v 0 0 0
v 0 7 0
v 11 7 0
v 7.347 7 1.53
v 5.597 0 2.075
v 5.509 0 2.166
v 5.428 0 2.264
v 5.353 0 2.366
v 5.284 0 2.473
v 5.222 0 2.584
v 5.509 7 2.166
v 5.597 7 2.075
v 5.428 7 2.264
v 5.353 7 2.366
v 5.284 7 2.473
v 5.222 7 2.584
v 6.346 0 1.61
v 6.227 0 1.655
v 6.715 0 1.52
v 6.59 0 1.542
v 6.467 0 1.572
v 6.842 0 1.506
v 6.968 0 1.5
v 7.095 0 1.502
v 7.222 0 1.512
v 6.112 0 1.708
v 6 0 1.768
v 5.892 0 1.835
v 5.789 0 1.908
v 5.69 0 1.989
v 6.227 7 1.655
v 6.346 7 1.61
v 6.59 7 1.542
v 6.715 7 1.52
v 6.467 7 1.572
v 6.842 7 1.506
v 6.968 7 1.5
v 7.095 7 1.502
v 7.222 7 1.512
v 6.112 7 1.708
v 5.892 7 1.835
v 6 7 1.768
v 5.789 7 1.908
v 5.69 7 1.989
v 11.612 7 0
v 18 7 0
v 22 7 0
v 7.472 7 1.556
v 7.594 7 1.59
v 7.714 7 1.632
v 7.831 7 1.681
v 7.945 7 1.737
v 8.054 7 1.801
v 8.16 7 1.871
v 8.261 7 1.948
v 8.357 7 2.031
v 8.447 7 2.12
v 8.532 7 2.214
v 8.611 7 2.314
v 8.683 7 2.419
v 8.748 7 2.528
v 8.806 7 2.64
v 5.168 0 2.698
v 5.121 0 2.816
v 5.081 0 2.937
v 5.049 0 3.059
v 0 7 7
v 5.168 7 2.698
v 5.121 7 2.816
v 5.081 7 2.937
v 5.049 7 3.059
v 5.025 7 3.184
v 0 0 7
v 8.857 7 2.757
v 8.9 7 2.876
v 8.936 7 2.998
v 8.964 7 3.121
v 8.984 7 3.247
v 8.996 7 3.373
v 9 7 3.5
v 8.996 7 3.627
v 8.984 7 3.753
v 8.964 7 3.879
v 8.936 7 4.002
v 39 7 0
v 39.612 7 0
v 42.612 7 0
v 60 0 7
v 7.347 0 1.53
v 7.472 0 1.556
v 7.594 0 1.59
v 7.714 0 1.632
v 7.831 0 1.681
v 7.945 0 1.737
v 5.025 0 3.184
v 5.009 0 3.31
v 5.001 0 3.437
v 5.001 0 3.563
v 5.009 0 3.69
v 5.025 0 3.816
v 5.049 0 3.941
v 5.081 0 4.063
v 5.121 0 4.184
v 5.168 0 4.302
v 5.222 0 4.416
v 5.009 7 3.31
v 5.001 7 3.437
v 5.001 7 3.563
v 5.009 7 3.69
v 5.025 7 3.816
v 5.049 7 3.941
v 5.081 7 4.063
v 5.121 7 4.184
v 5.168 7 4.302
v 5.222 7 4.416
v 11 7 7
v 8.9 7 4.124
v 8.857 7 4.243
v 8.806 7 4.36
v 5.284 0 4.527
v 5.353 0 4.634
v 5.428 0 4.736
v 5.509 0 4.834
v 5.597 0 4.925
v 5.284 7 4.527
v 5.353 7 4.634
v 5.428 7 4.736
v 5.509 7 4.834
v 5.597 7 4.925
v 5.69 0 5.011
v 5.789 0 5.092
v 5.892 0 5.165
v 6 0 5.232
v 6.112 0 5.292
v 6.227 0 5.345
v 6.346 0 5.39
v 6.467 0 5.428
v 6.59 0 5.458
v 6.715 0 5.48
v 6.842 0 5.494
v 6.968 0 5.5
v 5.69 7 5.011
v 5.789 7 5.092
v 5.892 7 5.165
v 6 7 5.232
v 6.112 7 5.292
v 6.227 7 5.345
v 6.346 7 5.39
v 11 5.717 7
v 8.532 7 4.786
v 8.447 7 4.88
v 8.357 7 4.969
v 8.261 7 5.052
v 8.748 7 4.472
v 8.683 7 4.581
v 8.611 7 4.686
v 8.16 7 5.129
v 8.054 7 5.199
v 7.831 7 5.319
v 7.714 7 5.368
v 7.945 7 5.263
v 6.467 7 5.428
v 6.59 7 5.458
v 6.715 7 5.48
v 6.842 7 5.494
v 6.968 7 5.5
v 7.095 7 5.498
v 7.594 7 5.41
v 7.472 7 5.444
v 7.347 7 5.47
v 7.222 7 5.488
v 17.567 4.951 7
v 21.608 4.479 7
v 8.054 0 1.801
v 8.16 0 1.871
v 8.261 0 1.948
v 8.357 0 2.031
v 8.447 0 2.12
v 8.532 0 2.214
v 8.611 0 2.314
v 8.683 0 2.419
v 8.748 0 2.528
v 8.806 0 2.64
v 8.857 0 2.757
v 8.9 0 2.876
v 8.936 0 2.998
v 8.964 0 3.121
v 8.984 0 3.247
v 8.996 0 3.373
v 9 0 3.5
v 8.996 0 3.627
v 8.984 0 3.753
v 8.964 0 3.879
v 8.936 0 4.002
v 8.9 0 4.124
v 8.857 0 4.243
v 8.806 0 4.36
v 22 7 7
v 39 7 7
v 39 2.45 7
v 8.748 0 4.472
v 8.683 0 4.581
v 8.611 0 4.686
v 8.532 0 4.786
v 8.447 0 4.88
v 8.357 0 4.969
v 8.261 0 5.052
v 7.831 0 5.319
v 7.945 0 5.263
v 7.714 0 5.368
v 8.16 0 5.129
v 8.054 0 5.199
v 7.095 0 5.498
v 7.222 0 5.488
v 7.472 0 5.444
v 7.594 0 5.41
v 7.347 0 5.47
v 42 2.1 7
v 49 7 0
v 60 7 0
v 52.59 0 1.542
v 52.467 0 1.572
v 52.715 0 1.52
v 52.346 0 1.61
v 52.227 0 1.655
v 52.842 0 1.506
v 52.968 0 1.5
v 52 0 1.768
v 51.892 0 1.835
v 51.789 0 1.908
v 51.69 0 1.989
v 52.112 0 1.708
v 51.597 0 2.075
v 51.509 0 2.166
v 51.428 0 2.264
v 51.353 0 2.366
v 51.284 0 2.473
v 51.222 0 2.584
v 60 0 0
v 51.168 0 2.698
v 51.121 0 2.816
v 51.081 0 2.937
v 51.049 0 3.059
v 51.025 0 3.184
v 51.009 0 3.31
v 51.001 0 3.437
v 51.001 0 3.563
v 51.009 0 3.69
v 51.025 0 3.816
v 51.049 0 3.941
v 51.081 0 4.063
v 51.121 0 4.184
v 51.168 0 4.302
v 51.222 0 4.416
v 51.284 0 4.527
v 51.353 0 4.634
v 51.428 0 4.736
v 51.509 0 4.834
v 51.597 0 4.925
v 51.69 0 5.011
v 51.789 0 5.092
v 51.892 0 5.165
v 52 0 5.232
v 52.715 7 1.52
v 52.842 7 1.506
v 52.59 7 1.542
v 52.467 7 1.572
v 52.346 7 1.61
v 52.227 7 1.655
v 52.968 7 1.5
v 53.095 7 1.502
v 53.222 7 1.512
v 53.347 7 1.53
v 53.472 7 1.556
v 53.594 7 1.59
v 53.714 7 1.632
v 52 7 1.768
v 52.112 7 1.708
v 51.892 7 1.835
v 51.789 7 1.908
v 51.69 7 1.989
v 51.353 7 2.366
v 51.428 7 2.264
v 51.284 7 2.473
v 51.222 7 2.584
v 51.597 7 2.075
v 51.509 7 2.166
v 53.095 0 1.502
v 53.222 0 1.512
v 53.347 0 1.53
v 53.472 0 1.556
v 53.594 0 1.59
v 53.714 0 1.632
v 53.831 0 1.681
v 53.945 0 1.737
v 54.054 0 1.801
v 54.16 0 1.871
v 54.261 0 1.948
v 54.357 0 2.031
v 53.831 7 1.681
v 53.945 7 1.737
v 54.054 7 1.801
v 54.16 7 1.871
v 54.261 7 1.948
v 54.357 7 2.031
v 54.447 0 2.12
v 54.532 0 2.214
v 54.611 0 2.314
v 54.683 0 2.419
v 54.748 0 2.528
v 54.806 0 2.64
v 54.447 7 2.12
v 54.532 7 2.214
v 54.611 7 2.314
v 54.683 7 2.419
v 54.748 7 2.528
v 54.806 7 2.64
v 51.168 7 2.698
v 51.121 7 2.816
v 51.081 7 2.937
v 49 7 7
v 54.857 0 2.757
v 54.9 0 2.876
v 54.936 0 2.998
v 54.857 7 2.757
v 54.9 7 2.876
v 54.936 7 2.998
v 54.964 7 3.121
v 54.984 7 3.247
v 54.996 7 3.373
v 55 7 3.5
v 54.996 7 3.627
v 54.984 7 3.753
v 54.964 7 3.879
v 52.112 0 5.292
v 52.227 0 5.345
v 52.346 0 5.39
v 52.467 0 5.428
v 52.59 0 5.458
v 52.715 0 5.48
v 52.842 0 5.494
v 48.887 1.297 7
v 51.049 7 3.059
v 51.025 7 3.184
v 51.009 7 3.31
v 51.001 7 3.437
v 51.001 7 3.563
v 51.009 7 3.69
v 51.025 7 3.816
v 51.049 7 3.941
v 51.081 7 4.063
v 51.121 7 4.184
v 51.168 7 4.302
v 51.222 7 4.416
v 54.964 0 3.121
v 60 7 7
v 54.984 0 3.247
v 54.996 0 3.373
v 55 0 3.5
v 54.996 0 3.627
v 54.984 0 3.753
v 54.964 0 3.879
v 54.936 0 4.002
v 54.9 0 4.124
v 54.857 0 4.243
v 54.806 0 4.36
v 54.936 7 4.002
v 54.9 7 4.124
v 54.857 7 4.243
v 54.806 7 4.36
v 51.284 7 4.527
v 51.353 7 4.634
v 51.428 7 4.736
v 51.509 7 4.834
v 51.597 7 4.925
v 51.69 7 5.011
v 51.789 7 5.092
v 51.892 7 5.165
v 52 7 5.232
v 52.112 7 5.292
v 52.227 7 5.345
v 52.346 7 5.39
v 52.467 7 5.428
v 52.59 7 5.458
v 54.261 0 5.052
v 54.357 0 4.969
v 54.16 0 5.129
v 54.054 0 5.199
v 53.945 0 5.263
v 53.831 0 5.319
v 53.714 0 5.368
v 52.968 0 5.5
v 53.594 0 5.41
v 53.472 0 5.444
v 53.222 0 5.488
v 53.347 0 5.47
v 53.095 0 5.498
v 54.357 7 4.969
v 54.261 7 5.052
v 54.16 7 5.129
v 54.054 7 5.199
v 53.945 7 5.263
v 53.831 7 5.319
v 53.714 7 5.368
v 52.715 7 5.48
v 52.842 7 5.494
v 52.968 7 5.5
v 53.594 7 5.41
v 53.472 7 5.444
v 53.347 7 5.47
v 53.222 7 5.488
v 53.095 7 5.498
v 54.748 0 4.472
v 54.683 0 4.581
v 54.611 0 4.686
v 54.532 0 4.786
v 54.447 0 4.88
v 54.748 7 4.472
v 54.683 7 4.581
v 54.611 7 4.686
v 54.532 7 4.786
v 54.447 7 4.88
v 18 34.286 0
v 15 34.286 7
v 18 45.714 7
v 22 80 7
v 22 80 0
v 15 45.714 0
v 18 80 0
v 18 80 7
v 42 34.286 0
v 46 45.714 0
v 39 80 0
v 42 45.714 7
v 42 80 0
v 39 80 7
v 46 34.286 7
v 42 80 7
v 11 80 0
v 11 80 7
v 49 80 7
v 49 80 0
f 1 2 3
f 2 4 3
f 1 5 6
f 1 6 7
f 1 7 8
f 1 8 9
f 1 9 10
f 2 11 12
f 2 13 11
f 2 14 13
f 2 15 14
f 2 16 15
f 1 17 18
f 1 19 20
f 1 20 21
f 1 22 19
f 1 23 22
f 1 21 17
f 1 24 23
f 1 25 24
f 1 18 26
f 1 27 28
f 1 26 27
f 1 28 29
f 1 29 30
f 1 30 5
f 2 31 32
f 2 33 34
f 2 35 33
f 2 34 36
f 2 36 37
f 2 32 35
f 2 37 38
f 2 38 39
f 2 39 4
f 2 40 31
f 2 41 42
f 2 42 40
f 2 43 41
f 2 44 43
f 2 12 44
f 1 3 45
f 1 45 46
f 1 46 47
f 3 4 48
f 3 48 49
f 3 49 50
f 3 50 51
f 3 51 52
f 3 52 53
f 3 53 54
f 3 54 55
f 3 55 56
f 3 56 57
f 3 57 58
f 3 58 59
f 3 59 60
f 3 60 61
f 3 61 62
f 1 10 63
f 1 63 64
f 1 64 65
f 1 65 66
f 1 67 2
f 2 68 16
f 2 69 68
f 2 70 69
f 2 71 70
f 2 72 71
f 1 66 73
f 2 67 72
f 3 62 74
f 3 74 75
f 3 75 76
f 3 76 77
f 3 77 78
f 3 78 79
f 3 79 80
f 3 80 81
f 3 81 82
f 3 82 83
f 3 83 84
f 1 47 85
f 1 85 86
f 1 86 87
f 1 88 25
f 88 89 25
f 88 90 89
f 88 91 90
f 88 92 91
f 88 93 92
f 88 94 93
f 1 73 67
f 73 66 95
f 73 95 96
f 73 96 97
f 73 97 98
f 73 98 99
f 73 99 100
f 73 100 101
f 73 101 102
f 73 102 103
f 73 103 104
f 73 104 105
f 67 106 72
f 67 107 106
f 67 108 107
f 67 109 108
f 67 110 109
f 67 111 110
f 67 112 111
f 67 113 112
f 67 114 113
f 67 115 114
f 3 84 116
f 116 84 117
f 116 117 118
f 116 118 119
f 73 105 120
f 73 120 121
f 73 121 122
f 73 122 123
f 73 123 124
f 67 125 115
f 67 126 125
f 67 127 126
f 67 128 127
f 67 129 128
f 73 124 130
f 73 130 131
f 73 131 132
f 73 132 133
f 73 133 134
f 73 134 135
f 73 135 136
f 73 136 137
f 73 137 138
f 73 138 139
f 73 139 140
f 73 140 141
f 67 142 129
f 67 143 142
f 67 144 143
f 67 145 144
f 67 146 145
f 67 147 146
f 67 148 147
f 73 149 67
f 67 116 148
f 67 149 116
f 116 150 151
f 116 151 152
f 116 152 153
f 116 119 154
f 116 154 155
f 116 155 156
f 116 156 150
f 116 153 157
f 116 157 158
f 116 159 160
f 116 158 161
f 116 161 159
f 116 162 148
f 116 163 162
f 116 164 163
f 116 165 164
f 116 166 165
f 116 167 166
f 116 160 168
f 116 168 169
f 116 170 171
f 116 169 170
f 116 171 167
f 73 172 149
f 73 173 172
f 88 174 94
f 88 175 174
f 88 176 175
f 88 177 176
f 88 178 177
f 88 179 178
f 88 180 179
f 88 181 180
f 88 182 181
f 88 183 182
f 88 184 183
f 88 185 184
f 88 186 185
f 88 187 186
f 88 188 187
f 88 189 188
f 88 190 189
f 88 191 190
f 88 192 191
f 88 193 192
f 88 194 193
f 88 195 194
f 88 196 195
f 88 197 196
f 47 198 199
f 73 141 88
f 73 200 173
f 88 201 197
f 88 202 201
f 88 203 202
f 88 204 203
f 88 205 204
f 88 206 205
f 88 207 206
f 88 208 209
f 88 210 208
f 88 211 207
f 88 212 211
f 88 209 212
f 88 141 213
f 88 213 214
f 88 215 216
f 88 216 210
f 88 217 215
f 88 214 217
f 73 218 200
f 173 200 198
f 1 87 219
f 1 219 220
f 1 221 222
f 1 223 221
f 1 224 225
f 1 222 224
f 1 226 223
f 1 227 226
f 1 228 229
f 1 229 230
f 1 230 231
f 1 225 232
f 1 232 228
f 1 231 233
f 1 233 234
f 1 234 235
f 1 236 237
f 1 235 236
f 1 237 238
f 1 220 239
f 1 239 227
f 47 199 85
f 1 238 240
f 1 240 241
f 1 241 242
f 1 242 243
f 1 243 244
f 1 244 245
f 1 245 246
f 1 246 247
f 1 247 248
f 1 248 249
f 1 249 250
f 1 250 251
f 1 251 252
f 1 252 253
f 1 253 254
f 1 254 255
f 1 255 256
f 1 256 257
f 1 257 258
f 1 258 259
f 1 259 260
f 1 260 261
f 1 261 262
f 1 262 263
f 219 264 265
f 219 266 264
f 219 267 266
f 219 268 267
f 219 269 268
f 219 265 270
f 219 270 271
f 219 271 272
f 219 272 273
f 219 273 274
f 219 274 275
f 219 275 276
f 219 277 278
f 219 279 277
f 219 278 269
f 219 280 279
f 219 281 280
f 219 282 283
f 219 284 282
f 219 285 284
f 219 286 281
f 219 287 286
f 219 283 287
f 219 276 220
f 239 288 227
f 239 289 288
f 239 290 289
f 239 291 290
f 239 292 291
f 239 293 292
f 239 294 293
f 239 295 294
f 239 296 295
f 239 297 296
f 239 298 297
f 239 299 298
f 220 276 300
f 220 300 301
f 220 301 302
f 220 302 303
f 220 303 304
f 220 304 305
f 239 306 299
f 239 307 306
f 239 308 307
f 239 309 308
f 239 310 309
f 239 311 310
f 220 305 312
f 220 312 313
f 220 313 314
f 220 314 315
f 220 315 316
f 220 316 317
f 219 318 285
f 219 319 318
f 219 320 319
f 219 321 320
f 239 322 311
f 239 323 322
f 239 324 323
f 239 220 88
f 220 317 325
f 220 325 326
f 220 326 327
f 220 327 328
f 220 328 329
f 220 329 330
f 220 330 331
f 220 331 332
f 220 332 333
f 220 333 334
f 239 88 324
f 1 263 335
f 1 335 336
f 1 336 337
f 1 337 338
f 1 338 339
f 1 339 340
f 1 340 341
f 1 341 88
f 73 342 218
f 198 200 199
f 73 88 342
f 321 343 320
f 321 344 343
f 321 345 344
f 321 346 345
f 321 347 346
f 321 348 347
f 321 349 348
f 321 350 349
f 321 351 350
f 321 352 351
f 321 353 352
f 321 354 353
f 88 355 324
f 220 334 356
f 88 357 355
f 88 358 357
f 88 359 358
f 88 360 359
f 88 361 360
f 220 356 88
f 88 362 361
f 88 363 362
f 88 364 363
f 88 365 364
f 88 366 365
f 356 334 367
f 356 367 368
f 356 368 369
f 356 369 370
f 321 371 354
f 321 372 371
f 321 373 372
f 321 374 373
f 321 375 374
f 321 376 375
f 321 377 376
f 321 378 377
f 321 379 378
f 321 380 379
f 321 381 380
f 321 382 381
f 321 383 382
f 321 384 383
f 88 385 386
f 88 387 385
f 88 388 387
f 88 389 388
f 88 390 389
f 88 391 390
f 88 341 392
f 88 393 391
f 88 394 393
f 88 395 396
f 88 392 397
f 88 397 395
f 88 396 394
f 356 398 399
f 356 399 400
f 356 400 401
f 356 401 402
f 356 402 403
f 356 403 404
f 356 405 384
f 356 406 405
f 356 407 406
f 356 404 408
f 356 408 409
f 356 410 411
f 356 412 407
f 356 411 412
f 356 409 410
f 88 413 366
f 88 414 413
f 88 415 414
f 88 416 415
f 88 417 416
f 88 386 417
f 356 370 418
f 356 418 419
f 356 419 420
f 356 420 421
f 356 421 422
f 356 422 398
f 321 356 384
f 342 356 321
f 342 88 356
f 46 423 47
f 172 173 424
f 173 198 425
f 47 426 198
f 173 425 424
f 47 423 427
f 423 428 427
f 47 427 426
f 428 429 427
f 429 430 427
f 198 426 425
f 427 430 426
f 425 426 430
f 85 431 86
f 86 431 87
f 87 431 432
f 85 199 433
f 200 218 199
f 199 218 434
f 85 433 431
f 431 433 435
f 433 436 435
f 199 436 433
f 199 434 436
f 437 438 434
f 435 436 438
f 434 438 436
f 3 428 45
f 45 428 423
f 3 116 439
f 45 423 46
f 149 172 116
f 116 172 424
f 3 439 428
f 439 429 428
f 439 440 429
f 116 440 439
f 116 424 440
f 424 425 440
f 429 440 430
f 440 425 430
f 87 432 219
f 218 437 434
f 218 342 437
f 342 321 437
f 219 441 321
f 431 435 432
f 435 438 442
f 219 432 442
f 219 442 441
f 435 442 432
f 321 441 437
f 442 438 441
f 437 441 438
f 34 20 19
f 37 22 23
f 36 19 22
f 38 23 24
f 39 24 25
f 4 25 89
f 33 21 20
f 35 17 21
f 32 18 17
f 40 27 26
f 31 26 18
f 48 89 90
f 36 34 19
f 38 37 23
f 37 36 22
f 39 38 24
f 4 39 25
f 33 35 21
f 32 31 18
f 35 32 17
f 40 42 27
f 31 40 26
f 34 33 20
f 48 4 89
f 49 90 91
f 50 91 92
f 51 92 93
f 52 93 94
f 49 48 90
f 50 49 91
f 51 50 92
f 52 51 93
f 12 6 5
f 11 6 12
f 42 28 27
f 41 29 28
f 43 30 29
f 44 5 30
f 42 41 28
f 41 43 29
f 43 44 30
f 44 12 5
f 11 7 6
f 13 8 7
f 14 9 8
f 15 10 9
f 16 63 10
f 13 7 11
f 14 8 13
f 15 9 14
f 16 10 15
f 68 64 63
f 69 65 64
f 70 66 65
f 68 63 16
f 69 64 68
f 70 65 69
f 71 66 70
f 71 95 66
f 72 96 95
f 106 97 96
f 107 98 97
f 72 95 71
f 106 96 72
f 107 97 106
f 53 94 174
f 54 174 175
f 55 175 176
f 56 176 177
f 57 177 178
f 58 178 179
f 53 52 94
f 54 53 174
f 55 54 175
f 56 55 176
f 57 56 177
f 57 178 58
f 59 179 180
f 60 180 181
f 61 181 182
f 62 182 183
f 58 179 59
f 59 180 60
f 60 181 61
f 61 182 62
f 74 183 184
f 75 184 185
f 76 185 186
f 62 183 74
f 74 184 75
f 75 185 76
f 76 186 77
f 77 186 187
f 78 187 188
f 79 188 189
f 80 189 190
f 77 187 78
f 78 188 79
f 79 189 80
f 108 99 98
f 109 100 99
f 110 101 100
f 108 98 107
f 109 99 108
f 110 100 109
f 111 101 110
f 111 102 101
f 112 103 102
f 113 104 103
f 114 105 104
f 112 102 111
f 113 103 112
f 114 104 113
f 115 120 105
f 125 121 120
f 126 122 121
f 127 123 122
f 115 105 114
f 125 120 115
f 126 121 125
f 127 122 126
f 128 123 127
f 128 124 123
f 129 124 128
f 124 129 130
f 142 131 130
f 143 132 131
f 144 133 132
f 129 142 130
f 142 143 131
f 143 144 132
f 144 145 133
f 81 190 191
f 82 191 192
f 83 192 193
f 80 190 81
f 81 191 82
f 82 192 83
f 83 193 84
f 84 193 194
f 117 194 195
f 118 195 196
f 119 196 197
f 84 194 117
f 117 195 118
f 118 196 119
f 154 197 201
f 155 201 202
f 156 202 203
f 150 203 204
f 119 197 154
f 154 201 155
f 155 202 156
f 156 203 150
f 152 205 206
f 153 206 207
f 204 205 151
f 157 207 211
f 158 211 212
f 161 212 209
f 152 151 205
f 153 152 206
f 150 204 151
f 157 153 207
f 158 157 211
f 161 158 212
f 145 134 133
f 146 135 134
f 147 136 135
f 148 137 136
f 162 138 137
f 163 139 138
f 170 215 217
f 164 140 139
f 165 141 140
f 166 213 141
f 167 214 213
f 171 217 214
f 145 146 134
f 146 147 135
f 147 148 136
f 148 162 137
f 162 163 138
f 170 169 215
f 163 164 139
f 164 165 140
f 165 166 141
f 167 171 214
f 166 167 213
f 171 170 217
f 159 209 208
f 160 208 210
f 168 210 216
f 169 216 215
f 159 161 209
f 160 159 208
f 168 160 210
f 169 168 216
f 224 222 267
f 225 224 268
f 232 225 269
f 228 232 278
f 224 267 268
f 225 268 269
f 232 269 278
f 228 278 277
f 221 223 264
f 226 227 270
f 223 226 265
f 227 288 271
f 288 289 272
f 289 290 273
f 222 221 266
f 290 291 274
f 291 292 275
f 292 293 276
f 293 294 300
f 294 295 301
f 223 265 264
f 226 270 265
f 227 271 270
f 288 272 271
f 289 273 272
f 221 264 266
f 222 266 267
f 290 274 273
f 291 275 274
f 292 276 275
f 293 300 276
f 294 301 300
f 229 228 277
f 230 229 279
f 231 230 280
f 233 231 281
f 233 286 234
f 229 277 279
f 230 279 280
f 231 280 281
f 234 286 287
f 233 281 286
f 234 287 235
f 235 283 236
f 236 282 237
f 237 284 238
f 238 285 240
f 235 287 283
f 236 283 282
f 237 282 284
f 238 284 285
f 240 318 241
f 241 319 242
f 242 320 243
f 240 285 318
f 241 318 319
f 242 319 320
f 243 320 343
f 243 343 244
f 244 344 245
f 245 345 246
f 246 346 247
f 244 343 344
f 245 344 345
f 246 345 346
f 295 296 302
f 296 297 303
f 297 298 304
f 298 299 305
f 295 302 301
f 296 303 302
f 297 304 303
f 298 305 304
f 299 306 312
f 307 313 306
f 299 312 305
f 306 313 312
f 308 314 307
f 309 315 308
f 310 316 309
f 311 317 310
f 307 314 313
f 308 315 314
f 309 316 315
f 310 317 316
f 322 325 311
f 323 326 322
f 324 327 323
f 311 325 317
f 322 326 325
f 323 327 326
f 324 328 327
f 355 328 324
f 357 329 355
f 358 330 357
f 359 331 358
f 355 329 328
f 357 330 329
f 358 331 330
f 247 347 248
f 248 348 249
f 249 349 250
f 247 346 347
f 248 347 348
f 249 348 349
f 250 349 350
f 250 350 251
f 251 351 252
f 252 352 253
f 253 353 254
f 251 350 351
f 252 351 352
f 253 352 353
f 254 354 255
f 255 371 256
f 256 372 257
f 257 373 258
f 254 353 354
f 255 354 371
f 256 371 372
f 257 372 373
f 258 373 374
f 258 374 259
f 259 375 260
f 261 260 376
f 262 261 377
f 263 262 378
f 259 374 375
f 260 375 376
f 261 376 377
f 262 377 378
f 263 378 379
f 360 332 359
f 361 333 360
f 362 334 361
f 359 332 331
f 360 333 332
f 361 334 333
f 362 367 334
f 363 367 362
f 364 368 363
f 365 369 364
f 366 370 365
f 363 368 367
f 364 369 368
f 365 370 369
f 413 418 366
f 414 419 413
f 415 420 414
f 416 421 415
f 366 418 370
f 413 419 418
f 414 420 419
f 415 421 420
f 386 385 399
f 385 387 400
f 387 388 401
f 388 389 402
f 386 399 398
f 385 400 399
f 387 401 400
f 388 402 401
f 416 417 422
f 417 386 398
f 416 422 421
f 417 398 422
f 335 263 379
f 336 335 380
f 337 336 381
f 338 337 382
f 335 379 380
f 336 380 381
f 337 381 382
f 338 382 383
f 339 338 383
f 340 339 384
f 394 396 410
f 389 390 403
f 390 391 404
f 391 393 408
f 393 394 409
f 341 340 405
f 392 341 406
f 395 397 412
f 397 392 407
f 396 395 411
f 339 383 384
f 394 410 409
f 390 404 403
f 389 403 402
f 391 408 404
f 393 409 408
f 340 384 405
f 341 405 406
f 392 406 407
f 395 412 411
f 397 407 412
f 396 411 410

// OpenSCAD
$fn= 99;
difference() {
union(){
cube([60,7,7],false);
translate([15,0,0]){
    cube([7,80,7],false);
}
translate([15 + 17 + 7,0,0]){
    cube([7,80,7],false);
}

translate([11 ,0,0]){
    cube([7,80,7],false);
}

translate([60-18 ,0,0]){
    cube([7,80,7],false);
}

}

    #translate([7,8,3.5]) {
    rotate([90,0,0])
    {
    cylinder(h=10,d=4, center=false)
     {}
    }
    }

    #translate([60-7,8,3.5]) {
    rotate([90,0,0])
    {
    cylinder(h=10,d=4, center=false)
     {}
    }
    }

}
